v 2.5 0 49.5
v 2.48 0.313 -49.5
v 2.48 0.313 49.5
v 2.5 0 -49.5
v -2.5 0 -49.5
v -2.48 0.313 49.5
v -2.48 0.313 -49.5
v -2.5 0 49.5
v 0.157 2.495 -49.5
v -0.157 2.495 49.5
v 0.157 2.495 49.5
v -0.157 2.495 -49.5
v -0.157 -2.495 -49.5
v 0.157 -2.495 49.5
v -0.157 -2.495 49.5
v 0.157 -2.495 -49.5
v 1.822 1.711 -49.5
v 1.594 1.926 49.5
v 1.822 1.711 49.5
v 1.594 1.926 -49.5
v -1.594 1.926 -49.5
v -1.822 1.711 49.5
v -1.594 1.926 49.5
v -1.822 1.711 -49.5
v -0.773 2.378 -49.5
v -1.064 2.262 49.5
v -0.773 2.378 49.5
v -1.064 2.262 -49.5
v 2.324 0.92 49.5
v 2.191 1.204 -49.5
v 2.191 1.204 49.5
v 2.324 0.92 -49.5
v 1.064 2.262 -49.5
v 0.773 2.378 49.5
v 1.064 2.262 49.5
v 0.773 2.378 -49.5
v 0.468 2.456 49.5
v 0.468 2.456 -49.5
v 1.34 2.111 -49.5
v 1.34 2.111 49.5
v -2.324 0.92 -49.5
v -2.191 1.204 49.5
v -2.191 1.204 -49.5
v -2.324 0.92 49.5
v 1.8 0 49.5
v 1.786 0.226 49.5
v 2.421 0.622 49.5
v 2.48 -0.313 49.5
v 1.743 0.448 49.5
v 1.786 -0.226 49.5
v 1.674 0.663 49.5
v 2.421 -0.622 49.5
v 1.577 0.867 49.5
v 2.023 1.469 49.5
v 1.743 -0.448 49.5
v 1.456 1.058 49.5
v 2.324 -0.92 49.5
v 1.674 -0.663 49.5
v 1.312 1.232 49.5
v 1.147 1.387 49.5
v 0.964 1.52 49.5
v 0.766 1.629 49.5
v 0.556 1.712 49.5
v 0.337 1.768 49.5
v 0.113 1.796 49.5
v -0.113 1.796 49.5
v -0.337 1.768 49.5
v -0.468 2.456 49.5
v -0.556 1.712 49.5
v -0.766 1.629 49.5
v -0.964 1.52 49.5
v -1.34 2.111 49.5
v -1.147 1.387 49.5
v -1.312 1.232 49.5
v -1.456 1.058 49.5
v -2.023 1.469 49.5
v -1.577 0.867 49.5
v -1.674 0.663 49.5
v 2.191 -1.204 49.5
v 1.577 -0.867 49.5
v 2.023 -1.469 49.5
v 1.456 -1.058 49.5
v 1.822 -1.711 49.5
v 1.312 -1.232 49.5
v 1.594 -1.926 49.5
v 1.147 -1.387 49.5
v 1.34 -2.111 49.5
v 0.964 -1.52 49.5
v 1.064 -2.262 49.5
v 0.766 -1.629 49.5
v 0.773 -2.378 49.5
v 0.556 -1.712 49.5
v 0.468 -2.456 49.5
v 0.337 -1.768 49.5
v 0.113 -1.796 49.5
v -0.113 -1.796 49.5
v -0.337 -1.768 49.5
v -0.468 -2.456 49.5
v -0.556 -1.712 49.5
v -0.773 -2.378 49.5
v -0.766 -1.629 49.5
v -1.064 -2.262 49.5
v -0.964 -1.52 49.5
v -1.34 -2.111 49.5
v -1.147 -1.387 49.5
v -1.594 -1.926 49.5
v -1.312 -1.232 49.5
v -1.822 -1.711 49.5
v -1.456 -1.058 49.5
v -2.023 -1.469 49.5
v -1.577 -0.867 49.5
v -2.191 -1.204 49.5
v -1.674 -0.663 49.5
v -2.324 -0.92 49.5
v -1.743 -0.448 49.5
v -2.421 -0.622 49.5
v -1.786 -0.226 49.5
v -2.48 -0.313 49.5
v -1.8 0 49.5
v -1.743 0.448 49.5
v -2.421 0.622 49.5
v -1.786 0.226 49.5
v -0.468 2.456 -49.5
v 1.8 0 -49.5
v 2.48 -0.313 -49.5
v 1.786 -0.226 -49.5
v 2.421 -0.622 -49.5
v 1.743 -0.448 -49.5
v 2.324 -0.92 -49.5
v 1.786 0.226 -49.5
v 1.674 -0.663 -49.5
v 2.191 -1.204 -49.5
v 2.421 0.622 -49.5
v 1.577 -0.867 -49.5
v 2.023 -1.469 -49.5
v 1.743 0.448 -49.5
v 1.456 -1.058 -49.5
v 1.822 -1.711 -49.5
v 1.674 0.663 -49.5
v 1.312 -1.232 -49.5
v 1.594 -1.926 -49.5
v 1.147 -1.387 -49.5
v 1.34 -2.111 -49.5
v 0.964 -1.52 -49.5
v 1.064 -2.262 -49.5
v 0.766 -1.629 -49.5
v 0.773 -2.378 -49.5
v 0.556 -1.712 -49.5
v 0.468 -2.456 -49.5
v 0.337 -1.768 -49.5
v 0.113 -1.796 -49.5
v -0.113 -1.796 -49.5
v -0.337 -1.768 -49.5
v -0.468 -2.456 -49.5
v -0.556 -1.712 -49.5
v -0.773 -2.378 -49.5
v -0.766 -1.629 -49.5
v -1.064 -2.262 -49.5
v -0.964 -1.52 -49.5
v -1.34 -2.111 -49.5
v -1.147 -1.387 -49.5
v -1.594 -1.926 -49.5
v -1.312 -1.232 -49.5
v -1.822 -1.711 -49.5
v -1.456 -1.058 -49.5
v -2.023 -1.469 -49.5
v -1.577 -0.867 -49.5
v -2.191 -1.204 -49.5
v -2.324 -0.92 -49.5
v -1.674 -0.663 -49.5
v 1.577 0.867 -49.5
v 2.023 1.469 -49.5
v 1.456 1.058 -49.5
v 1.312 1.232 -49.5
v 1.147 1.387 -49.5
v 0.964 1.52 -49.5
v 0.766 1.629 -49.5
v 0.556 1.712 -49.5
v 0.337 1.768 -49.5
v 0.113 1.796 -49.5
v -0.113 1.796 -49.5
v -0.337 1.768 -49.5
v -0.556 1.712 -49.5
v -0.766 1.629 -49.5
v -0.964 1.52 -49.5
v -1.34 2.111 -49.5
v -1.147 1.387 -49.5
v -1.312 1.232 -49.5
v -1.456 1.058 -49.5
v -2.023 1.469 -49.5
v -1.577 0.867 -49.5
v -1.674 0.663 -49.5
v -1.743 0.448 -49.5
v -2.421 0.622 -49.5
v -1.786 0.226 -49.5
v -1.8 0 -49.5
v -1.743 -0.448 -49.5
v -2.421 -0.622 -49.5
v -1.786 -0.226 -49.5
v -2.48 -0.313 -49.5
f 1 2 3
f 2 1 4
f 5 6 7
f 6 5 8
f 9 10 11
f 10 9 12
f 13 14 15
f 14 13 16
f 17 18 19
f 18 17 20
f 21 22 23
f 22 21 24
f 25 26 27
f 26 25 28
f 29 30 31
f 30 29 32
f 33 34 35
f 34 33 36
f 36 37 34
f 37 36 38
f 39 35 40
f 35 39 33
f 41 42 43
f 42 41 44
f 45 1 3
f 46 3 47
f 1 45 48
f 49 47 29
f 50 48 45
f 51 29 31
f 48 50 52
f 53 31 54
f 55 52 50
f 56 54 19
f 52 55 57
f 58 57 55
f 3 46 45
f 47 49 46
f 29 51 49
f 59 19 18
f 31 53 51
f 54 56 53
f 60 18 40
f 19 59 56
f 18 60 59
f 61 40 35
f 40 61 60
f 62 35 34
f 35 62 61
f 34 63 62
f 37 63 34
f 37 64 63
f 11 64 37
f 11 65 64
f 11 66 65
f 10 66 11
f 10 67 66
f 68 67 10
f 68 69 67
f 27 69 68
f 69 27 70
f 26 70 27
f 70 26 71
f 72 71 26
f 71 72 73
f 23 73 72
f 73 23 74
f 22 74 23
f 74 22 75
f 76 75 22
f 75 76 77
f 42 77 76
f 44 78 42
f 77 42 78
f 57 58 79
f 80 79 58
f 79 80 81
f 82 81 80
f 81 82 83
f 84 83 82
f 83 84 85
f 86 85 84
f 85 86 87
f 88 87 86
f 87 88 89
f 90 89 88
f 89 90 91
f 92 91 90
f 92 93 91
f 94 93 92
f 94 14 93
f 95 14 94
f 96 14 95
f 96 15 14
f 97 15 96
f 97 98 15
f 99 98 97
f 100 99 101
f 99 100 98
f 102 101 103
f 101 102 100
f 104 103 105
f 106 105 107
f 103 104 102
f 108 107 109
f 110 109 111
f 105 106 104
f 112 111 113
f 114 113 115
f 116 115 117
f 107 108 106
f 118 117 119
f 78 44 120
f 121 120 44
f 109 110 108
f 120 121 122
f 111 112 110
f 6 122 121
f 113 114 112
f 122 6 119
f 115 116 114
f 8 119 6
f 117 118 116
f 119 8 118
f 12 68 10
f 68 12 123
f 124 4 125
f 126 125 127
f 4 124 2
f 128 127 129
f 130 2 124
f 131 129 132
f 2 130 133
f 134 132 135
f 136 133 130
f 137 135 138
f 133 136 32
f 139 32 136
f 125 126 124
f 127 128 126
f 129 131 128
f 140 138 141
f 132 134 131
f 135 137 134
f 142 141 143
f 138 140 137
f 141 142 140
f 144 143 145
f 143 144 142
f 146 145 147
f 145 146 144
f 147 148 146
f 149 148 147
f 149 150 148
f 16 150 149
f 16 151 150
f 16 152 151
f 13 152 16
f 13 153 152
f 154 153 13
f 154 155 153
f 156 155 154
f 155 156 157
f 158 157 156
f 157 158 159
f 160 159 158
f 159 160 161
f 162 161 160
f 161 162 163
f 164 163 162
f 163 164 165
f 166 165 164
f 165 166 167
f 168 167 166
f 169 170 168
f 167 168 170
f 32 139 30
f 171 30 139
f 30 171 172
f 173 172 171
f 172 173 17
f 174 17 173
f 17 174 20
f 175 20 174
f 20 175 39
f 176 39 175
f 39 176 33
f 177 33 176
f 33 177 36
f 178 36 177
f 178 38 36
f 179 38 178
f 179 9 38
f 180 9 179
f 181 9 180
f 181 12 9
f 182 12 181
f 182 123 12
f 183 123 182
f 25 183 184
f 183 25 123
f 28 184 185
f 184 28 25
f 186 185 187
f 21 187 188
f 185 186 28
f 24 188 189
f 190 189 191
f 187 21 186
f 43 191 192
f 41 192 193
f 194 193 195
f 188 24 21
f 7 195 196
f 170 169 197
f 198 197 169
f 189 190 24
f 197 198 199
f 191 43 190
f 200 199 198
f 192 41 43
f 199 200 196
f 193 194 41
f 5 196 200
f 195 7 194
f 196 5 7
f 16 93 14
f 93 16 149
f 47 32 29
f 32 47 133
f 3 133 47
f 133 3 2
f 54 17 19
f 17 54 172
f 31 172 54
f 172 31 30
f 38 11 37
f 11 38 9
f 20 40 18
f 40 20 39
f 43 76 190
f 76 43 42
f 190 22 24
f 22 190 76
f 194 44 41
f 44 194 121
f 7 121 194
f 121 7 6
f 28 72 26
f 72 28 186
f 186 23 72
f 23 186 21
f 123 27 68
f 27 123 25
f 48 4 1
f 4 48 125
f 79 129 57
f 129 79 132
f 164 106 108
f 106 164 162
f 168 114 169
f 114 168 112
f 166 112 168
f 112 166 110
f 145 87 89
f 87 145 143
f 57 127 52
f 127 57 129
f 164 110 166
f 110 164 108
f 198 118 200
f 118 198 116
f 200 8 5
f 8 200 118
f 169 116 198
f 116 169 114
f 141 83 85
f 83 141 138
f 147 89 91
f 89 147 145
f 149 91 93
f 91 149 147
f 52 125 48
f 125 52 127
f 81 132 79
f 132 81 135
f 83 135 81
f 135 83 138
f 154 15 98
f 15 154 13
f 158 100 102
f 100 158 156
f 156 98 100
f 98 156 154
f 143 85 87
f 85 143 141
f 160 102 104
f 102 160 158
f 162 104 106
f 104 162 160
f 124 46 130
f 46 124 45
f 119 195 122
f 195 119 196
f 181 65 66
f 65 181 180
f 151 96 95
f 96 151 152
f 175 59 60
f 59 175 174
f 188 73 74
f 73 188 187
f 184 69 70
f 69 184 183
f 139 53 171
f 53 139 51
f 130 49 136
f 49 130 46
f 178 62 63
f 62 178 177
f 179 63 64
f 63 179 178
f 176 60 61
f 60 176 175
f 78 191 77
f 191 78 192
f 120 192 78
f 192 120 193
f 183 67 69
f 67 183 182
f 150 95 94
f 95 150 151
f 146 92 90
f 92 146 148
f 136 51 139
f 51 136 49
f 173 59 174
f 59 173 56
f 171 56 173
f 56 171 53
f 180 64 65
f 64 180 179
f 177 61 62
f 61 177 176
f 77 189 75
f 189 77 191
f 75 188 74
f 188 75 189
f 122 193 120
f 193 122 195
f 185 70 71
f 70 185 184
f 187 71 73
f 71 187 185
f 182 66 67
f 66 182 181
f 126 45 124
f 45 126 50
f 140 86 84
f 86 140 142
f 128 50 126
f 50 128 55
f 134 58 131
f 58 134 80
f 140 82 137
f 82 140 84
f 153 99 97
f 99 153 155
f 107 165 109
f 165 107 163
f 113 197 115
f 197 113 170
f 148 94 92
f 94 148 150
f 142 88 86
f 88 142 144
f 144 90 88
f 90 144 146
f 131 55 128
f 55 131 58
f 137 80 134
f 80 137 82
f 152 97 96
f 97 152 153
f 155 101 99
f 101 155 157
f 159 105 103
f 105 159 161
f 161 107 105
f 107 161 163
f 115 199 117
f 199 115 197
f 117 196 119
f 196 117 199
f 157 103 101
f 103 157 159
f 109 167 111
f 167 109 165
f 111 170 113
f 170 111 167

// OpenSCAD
$fn = 50;


difference() {
	union() {
		translate(v = [0, 0, -49.5000000000]) {
			cylinder(h = 99, r = 2.5000000000);
		}
	}
	union() {
		#translate(v = [0, 0, -100.0000000000]) {
			cylinder(h = 200, r = 1.8000000000);
		}
	}
}
